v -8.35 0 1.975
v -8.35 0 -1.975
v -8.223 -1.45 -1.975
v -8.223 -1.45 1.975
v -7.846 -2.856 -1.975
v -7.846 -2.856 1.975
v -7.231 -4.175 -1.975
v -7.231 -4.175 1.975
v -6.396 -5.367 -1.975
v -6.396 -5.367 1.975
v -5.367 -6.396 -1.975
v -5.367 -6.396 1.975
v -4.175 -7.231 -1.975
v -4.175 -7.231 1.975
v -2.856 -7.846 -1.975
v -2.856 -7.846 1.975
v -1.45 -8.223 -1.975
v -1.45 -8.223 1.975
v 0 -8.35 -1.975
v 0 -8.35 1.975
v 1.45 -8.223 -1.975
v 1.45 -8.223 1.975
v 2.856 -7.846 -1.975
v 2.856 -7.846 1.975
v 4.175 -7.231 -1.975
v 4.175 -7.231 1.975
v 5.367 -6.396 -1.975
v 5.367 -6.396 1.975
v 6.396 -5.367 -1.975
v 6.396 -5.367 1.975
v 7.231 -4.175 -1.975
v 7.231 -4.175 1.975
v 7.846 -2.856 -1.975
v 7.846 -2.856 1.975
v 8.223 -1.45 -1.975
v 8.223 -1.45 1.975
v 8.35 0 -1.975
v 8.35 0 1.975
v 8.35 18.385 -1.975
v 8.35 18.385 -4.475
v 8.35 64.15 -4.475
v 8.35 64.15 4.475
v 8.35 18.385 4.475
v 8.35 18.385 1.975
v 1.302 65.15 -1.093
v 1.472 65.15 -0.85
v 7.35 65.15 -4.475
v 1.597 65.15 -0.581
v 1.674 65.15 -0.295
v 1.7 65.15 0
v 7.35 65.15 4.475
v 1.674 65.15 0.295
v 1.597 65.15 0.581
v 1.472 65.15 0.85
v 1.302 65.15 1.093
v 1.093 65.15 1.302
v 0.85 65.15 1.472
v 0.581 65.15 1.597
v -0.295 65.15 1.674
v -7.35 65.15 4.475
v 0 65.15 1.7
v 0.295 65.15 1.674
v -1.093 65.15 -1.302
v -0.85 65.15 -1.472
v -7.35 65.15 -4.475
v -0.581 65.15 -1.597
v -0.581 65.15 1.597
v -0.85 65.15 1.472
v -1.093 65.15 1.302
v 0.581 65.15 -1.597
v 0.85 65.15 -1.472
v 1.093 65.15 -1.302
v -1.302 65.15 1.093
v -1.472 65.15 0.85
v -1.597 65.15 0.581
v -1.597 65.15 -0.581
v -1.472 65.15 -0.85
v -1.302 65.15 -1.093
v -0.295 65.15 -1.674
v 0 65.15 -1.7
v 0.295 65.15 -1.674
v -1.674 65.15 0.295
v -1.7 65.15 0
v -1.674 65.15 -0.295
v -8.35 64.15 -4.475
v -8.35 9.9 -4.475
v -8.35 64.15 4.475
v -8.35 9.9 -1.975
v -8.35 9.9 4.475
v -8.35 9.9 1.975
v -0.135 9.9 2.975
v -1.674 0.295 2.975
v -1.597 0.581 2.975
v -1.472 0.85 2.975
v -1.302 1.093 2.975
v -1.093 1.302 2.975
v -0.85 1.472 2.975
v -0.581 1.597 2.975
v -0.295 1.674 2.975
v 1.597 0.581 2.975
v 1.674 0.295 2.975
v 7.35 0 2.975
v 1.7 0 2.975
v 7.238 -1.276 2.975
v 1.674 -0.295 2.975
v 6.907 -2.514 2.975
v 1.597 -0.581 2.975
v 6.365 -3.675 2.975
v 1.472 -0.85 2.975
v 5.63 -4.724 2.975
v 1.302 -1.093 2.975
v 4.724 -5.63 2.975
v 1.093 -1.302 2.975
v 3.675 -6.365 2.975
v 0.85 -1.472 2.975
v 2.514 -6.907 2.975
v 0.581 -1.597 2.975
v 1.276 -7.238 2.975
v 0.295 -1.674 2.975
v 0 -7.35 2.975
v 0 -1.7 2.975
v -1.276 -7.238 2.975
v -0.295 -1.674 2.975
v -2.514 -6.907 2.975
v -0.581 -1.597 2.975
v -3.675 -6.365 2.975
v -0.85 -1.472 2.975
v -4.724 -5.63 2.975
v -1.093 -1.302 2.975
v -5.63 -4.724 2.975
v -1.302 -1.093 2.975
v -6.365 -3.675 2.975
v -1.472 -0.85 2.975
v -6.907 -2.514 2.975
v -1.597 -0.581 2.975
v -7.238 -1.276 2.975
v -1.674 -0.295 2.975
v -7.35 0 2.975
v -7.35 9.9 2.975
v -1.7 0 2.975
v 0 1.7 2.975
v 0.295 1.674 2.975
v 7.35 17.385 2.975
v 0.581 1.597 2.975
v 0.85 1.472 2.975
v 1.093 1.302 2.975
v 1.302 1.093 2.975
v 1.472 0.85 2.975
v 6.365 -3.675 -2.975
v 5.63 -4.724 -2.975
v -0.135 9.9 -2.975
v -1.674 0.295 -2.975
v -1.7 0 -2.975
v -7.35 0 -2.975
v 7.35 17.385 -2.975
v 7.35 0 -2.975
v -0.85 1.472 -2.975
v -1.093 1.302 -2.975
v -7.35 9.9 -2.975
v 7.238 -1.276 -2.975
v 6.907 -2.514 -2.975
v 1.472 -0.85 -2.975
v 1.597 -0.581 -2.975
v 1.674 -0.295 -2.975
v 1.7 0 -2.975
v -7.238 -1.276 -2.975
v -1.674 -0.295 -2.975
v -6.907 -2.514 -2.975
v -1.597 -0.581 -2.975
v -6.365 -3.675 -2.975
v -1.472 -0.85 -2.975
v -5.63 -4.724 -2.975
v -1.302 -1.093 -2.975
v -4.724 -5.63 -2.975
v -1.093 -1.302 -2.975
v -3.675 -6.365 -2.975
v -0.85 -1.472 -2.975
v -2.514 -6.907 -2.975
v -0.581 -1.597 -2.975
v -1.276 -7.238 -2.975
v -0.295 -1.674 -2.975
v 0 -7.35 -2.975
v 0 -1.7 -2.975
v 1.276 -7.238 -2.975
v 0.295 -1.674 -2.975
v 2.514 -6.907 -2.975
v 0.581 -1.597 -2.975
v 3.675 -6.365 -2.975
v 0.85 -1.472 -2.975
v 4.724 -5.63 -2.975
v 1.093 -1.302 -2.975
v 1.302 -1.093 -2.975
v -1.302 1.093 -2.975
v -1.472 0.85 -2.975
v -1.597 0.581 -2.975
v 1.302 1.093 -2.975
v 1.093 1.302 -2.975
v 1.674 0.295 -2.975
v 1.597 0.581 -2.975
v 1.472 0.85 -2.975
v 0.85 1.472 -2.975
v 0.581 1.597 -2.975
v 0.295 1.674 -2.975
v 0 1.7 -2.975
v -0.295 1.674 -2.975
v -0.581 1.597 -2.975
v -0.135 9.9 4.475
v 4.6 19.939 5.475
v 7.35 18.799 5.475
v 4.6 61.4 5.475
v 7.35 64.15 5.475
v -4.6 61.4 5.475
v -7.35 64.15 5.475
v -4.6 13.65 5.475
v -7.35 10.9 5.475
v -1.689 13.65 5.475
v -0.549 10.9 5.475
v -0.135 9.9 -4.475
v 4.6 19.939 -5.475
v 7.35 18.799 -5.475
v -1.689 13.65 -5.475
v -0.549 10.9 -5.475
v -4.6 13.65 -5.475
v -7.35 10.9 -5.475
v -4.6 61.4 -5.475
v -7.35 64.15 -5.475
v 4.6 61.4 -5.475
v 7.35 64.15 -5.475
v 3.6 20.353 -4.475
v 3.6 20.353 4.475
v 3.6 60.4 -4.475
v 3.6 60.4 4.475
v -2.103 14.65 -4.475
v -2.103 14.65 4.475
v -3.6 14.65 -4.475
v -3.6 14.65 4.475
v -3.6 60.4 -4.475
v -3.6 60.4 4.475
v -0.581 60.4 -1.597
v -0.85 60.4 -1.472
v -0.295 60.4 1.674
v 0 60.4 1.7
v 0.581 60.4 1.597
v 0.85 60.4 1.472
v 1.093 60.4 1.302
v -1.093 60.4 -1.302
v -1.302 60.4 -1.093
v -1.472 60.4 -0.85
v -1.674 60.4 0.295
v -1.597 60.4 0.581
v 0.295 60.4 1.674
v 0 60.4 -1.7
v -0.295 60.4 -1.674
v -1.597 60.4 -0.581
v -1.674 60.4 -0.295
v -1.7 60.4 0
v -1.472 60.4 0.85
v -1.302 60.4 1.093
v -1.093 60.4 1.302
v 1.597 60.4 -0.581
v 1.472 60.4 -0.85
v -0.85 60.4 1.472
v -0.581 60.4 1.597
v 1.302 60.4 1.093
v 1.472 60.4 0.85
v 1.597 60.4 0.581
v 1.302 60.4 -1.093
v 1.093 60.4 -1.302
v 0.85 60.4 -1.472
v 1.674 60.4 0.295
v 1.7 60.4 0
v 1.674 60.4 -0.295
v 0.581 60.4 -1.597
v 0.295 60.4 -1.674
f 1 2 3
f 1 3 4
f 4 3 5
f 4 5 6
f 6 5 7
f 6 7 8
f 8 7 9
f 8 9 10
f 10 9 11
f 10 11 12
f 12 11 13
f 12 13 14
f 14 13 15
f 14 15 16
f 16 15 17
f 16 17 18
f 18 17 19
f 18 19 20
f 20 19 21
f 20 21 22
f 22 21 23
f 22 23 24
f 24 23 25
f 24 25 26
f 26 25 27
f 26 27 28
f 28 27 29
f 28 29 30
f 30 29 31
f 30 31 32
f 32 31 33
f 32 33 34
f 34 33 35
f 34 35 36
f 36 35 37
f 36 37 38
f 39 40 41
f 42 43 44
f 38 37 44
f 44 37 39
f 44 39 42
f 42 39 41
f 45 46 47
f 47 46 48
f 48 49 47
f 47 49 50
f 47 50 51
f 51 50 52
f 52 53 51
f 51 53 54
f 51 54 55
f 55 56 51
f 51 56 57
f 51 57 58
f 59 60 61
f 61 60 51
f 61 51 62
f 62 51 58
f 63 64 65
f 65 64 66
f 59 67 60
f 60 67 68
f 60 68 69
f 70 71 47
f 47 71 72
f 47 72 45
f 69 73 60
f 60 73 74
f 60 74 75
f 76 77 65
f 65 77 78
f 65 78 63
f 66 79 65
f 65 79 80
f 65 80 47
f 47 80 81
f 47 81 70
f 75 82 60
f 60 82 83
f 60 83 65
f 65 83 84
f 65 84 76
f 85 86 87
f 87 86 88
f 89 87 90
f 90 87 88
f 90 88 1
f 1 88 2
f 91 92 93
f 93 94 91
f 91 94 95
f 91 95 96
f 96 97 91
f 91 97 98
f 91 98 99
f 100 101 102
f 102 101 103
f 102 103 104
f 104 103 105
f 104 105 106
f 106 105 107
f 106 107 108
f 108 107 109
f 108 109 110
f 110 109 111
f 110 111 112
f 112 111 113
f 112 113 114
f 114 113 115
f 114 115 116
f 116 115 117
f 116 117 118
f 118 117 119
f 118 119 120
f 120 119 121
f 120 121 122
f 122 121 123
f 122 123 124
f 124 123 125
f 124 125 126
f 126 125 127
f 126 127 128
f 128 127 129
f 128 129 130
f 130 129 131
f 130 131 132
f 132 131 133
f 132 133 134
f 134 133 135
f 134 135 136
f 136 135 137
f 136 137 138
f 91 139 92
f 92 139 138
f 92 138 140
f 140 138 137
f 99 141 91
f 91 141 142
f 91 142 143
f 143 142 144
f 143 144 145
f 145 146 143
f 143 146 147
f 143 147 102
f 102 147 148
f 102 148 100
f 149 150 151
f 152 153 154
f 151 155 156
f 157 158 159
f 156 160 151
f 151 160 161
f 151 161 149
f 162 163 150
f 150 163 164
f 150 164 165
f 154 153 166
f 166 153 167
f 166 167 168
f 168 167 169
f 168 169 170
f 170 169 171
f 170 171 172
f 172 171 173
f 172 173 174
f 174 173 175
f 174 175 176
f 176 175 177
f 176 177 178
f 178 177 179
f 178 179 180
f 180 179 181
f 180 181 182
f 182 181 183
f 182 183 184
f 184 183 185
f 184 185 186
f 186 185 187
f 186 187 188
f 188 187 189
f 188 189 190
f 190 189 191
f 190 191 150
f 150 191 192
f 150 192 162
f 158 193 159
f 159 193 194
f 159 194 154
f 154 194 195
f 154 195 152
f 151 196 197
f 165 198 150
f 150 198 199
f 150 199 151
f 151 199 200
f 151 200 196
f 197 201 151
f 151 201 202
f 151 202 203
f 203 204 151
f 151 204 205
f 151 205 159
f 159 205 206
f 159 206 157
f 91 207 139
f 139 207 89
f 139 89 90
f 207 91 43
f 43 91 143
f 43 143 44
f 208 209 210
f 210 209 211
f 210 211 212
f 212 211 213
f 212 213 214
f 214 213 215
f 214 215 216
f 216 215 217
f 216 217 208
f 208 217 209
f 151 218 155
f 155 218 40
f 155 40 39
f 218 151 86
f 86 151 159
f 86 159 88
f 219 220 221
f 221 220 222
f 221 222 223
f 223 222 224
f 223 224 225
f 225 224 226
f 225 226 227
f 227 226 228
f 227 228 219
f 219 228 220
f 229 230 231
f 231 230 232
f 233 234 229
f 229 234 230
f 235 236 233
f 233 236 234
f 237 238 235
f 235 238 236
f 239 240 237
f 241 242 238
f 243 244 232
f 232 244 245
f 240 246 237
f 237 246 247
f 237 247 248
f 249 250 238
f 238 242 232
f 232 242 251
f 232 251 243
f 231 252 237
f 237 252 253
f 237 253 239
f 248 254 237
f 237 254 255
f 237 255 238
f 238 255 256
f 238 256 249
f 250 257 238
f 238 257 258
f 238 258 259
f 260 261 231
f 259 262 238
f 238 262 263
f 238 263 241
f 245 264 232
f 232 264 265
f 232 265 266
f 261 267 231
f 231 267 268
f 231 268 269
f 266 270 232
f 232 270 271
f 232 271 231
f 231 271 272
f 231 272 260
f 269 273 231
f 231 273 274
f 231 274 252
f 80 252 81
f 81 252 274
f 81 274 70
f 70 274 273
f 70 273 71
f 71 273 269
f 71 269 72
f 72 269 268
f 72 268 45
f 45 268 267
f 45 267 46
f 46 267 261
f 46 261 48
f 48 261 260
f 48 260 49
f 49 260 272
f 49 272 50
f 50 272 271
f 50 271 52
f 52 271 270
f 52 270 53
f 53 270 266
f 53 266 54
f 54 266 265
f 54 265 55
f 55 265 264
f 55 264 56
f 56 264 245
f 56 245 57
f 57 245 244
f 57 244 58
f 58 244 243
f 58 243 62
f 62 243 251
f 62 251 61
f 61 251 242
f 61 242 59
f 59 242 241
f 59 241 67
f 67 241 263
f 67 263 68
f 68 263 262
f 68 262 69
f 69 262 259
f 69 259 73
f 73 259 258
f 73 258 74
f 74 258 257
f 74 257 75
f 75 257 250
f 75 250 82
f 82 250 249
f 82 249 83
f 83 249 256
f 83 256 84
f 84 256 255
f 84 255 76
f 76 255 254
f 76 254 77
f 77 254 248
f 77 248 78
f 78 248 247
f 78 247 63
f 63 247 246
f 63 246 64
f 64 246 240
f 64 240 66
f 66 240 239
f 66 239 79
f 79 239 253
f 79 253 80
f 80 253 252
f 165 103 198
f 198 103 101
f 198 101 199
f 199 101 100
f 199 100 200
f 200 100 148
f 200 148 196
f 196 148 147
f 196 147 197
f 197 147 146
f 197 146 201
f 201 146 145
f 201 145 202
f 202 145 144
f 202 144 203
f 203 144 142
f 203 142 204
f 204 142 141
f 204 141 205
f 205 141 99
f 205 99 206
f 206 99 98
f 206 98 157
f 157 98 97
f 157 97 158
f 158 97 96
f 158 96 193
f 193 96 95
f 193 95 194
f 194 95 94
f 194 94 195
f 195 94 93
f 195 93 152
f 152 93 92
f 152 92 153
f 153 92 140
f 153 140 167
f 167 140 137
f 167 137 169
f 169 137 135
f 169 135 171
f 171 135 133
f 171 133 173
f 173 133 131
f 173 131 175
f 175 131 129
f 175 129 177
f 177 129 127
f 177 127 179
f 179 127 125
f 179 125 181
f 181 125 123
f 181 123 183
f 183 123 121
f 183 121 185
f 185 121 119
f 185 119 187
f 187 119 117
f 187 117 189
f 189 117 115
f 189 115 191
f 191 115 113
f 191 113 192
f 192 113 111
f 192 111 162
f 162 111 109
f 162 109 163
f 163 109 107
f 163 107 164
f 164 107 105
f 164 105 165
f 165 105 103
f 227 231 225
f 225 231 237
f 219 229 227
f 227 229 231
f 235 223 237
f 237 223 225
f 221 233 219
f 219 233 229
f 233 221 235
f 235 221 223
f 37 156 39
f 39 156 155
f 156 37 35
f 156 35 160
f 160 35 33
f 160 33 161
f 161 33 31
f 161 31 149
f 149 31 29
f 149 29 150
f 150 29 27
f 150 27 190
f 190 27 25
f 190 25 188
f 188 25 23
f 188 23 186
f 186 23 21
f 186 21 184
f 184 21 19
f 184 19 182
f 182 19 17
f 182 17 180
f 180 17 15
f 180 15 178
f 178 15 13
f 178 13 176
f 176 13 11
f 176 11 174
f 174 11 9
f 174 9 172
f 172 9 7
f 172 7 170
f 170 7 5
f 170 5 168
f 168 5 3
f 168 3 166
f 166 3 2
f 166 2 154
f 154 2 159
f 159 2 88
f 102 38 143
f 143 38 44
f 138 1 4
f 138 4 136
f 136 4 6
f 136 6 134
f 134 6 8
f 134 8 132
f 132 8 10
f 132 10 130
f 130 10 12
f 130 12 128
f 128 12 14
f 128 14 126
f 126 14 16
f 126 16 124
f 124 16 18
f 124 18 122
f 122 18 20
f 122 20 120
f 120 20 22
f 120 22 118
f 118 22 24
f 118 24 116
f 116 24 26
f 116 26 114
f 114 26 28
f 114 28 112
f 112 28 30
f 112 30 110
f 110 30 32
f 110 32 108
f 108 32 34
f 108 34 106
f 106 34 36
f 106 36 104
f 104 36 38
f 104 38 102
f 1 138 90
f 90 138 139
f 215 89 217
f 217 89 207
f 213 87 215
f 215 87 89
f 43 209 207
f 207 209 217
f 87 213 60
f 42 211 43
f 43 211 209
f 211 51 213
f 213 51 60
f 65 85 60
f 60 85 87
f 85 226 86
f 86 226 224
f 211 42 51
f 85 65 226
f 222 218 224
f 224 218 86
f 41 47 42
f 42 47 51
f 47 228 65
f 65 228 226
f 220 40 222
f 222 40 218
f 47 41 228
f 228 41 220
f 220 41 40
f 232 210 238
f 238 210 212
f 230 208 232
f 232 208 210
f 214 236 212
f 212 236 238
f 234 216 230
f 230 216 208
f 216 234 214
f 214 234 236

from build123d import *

# Parameters (mm, degrees)
BOSS_EXTRUDE1_DEPTH = 2.975
BOSS_EXTRUDE2_DEPTH = 2.5
BOSS_EXTRUDE3_START = -5.95
BOSS_EXTRUDE3_DEPTH = 2.5
CUT_EXTRUDE3_DEPTH  = 11.95
SKETCH6_R           = 1.7
CUT_EXTRUDE4_DEPTH  = 5.75
SKETCH7_R           = 1.7
CUT_EXTRUDE5_DEPTH  = 9.45
CHAMFER1_SIZE       = 1


with BuildPart() as part:
    # Sketch1 → Boss-Extrude1 (new body, symmetric)
    with BuildSketch(Plane.XY):
        with BuildLine():
            Line((-8.35, 0), (-8.35, 65.15))
            Line((-8.35, 65.15), (8.35, 65.15))
            Line((8.35, 65.15), (8.35, 0))
            ThreePointArc((8.35, 0), (0, -8.35), (-8.35, 0))
        make_face()
    extrude(amount=BOSS_EXTRUDE1_DEPTH, both=True)

    # Sketch4 → Boss-Extrude2 (add)
    with BuildSketch(Plane.XY.offset(2.975)):
        Polygon((-8.35, 65.15), (-8.35, 9.9), (-0.135281374, 9.9), (8.35, 18.385281374), (8.35, 65.15), align=None)
    extrude(amount=BOSS_EXTRUDE2_DEPTH)

    # Sketch4<2> → Boss-Extrude3 (add)
    with BuildSketch(Plane.XY.offset(2.975).offset(BOSS_EXTRUDE3_START)):
        Polygon((-8.35, 65.15), (-8.35, 9.9), (-0.135281374, 9.9), (8.35, 18.385281374), (8.35, 65.15), align=None)
    extrude(amount=-BOSS_EXTRUDE3_DEPTH)

    # Sketch5 → Cut-Extrude3 (cut, through all)
    with BuildSketch(Plane.XY.offset(5.475)):
        Polygon((-3.6, 14.65), (-2.102795796, 14.65), (3.6, 20.352795796), (3.6, 60.4), (-3.6, 60.4), align=None)
    extrude(amount=-CUT_EXTRUDE3_DEPTH, mode=Mode.SUBTRACT)

    # Sketch6 → Cut-Extrude4 (cut, through all)
    with BuildSketch(Plane.XZ.offset(-60.4)):
        Circle(SKETCH6_R)
    extrude(amount=-CUT_EXTRUDE4_DEPTH, mode=Mode.SUBTRACT)

    # Sketch7 → Cut-Extrude5 (cut, through all)
    with BuildSketch(Plane.XY.offset(2.975)):
        Circle(SKETCH7_R)
    extrude(amount=-CUT_EXTRUDE5_DEPTH, mode=Mode.SUBTRACT)

    # Chamfer1
    chamfer1_edges = [part.edges().sort_by_distance(p)[0] for p in [
        (-8.35, 4.95, 2.975),
        (0, 65.15, 5.475),
        (-8.35, 37.525, 5.475),
        (-4.242640687, 9.9, 5.475),
        (4.107359313, 14.142640687, 5.475),
        (8.35, 41.767640687, 5.475),
        (-8.35, 4.95, -2.975),
        (4.107359313, 14.142640687, -5.475),
        (-4.242640687, 9.9, -5.475),
        (-8.35, 37.525, -5.475),
        (0, 65.15, -5.475),
        (8.35, 41.767640687, -5.475),
        (0, -8.35, 2.975),
        (3.6, 40.376397898, -5.475),
        (0.748602102, 17.501397898, -5.475),
        (-2.851397898, 14.65, -5.475),
        (-3.6, 37.525, -5.475),
        (0, 60.4, -5.475),
        (3.6, 40.376397898, 5.475),
        (0, 60.4, 5.475),
        (-3.6, 37.525, 5.475),
        (-2.851397898, 14.65, 5.475),
        (0.748602102, 17.501397898, 5.475),
        (8.35, 9.192640687, -2.975),
        (0, -8.35, -2.975),
        (-8.35, 65.15, 0),
        (8.35, 65.15, 0),
        (8.35, 9.192640687, 2.975),
    ]]
    chamfer(chamfer1_edges, length=CHAMFER1_SIZE)


solid = part.part
